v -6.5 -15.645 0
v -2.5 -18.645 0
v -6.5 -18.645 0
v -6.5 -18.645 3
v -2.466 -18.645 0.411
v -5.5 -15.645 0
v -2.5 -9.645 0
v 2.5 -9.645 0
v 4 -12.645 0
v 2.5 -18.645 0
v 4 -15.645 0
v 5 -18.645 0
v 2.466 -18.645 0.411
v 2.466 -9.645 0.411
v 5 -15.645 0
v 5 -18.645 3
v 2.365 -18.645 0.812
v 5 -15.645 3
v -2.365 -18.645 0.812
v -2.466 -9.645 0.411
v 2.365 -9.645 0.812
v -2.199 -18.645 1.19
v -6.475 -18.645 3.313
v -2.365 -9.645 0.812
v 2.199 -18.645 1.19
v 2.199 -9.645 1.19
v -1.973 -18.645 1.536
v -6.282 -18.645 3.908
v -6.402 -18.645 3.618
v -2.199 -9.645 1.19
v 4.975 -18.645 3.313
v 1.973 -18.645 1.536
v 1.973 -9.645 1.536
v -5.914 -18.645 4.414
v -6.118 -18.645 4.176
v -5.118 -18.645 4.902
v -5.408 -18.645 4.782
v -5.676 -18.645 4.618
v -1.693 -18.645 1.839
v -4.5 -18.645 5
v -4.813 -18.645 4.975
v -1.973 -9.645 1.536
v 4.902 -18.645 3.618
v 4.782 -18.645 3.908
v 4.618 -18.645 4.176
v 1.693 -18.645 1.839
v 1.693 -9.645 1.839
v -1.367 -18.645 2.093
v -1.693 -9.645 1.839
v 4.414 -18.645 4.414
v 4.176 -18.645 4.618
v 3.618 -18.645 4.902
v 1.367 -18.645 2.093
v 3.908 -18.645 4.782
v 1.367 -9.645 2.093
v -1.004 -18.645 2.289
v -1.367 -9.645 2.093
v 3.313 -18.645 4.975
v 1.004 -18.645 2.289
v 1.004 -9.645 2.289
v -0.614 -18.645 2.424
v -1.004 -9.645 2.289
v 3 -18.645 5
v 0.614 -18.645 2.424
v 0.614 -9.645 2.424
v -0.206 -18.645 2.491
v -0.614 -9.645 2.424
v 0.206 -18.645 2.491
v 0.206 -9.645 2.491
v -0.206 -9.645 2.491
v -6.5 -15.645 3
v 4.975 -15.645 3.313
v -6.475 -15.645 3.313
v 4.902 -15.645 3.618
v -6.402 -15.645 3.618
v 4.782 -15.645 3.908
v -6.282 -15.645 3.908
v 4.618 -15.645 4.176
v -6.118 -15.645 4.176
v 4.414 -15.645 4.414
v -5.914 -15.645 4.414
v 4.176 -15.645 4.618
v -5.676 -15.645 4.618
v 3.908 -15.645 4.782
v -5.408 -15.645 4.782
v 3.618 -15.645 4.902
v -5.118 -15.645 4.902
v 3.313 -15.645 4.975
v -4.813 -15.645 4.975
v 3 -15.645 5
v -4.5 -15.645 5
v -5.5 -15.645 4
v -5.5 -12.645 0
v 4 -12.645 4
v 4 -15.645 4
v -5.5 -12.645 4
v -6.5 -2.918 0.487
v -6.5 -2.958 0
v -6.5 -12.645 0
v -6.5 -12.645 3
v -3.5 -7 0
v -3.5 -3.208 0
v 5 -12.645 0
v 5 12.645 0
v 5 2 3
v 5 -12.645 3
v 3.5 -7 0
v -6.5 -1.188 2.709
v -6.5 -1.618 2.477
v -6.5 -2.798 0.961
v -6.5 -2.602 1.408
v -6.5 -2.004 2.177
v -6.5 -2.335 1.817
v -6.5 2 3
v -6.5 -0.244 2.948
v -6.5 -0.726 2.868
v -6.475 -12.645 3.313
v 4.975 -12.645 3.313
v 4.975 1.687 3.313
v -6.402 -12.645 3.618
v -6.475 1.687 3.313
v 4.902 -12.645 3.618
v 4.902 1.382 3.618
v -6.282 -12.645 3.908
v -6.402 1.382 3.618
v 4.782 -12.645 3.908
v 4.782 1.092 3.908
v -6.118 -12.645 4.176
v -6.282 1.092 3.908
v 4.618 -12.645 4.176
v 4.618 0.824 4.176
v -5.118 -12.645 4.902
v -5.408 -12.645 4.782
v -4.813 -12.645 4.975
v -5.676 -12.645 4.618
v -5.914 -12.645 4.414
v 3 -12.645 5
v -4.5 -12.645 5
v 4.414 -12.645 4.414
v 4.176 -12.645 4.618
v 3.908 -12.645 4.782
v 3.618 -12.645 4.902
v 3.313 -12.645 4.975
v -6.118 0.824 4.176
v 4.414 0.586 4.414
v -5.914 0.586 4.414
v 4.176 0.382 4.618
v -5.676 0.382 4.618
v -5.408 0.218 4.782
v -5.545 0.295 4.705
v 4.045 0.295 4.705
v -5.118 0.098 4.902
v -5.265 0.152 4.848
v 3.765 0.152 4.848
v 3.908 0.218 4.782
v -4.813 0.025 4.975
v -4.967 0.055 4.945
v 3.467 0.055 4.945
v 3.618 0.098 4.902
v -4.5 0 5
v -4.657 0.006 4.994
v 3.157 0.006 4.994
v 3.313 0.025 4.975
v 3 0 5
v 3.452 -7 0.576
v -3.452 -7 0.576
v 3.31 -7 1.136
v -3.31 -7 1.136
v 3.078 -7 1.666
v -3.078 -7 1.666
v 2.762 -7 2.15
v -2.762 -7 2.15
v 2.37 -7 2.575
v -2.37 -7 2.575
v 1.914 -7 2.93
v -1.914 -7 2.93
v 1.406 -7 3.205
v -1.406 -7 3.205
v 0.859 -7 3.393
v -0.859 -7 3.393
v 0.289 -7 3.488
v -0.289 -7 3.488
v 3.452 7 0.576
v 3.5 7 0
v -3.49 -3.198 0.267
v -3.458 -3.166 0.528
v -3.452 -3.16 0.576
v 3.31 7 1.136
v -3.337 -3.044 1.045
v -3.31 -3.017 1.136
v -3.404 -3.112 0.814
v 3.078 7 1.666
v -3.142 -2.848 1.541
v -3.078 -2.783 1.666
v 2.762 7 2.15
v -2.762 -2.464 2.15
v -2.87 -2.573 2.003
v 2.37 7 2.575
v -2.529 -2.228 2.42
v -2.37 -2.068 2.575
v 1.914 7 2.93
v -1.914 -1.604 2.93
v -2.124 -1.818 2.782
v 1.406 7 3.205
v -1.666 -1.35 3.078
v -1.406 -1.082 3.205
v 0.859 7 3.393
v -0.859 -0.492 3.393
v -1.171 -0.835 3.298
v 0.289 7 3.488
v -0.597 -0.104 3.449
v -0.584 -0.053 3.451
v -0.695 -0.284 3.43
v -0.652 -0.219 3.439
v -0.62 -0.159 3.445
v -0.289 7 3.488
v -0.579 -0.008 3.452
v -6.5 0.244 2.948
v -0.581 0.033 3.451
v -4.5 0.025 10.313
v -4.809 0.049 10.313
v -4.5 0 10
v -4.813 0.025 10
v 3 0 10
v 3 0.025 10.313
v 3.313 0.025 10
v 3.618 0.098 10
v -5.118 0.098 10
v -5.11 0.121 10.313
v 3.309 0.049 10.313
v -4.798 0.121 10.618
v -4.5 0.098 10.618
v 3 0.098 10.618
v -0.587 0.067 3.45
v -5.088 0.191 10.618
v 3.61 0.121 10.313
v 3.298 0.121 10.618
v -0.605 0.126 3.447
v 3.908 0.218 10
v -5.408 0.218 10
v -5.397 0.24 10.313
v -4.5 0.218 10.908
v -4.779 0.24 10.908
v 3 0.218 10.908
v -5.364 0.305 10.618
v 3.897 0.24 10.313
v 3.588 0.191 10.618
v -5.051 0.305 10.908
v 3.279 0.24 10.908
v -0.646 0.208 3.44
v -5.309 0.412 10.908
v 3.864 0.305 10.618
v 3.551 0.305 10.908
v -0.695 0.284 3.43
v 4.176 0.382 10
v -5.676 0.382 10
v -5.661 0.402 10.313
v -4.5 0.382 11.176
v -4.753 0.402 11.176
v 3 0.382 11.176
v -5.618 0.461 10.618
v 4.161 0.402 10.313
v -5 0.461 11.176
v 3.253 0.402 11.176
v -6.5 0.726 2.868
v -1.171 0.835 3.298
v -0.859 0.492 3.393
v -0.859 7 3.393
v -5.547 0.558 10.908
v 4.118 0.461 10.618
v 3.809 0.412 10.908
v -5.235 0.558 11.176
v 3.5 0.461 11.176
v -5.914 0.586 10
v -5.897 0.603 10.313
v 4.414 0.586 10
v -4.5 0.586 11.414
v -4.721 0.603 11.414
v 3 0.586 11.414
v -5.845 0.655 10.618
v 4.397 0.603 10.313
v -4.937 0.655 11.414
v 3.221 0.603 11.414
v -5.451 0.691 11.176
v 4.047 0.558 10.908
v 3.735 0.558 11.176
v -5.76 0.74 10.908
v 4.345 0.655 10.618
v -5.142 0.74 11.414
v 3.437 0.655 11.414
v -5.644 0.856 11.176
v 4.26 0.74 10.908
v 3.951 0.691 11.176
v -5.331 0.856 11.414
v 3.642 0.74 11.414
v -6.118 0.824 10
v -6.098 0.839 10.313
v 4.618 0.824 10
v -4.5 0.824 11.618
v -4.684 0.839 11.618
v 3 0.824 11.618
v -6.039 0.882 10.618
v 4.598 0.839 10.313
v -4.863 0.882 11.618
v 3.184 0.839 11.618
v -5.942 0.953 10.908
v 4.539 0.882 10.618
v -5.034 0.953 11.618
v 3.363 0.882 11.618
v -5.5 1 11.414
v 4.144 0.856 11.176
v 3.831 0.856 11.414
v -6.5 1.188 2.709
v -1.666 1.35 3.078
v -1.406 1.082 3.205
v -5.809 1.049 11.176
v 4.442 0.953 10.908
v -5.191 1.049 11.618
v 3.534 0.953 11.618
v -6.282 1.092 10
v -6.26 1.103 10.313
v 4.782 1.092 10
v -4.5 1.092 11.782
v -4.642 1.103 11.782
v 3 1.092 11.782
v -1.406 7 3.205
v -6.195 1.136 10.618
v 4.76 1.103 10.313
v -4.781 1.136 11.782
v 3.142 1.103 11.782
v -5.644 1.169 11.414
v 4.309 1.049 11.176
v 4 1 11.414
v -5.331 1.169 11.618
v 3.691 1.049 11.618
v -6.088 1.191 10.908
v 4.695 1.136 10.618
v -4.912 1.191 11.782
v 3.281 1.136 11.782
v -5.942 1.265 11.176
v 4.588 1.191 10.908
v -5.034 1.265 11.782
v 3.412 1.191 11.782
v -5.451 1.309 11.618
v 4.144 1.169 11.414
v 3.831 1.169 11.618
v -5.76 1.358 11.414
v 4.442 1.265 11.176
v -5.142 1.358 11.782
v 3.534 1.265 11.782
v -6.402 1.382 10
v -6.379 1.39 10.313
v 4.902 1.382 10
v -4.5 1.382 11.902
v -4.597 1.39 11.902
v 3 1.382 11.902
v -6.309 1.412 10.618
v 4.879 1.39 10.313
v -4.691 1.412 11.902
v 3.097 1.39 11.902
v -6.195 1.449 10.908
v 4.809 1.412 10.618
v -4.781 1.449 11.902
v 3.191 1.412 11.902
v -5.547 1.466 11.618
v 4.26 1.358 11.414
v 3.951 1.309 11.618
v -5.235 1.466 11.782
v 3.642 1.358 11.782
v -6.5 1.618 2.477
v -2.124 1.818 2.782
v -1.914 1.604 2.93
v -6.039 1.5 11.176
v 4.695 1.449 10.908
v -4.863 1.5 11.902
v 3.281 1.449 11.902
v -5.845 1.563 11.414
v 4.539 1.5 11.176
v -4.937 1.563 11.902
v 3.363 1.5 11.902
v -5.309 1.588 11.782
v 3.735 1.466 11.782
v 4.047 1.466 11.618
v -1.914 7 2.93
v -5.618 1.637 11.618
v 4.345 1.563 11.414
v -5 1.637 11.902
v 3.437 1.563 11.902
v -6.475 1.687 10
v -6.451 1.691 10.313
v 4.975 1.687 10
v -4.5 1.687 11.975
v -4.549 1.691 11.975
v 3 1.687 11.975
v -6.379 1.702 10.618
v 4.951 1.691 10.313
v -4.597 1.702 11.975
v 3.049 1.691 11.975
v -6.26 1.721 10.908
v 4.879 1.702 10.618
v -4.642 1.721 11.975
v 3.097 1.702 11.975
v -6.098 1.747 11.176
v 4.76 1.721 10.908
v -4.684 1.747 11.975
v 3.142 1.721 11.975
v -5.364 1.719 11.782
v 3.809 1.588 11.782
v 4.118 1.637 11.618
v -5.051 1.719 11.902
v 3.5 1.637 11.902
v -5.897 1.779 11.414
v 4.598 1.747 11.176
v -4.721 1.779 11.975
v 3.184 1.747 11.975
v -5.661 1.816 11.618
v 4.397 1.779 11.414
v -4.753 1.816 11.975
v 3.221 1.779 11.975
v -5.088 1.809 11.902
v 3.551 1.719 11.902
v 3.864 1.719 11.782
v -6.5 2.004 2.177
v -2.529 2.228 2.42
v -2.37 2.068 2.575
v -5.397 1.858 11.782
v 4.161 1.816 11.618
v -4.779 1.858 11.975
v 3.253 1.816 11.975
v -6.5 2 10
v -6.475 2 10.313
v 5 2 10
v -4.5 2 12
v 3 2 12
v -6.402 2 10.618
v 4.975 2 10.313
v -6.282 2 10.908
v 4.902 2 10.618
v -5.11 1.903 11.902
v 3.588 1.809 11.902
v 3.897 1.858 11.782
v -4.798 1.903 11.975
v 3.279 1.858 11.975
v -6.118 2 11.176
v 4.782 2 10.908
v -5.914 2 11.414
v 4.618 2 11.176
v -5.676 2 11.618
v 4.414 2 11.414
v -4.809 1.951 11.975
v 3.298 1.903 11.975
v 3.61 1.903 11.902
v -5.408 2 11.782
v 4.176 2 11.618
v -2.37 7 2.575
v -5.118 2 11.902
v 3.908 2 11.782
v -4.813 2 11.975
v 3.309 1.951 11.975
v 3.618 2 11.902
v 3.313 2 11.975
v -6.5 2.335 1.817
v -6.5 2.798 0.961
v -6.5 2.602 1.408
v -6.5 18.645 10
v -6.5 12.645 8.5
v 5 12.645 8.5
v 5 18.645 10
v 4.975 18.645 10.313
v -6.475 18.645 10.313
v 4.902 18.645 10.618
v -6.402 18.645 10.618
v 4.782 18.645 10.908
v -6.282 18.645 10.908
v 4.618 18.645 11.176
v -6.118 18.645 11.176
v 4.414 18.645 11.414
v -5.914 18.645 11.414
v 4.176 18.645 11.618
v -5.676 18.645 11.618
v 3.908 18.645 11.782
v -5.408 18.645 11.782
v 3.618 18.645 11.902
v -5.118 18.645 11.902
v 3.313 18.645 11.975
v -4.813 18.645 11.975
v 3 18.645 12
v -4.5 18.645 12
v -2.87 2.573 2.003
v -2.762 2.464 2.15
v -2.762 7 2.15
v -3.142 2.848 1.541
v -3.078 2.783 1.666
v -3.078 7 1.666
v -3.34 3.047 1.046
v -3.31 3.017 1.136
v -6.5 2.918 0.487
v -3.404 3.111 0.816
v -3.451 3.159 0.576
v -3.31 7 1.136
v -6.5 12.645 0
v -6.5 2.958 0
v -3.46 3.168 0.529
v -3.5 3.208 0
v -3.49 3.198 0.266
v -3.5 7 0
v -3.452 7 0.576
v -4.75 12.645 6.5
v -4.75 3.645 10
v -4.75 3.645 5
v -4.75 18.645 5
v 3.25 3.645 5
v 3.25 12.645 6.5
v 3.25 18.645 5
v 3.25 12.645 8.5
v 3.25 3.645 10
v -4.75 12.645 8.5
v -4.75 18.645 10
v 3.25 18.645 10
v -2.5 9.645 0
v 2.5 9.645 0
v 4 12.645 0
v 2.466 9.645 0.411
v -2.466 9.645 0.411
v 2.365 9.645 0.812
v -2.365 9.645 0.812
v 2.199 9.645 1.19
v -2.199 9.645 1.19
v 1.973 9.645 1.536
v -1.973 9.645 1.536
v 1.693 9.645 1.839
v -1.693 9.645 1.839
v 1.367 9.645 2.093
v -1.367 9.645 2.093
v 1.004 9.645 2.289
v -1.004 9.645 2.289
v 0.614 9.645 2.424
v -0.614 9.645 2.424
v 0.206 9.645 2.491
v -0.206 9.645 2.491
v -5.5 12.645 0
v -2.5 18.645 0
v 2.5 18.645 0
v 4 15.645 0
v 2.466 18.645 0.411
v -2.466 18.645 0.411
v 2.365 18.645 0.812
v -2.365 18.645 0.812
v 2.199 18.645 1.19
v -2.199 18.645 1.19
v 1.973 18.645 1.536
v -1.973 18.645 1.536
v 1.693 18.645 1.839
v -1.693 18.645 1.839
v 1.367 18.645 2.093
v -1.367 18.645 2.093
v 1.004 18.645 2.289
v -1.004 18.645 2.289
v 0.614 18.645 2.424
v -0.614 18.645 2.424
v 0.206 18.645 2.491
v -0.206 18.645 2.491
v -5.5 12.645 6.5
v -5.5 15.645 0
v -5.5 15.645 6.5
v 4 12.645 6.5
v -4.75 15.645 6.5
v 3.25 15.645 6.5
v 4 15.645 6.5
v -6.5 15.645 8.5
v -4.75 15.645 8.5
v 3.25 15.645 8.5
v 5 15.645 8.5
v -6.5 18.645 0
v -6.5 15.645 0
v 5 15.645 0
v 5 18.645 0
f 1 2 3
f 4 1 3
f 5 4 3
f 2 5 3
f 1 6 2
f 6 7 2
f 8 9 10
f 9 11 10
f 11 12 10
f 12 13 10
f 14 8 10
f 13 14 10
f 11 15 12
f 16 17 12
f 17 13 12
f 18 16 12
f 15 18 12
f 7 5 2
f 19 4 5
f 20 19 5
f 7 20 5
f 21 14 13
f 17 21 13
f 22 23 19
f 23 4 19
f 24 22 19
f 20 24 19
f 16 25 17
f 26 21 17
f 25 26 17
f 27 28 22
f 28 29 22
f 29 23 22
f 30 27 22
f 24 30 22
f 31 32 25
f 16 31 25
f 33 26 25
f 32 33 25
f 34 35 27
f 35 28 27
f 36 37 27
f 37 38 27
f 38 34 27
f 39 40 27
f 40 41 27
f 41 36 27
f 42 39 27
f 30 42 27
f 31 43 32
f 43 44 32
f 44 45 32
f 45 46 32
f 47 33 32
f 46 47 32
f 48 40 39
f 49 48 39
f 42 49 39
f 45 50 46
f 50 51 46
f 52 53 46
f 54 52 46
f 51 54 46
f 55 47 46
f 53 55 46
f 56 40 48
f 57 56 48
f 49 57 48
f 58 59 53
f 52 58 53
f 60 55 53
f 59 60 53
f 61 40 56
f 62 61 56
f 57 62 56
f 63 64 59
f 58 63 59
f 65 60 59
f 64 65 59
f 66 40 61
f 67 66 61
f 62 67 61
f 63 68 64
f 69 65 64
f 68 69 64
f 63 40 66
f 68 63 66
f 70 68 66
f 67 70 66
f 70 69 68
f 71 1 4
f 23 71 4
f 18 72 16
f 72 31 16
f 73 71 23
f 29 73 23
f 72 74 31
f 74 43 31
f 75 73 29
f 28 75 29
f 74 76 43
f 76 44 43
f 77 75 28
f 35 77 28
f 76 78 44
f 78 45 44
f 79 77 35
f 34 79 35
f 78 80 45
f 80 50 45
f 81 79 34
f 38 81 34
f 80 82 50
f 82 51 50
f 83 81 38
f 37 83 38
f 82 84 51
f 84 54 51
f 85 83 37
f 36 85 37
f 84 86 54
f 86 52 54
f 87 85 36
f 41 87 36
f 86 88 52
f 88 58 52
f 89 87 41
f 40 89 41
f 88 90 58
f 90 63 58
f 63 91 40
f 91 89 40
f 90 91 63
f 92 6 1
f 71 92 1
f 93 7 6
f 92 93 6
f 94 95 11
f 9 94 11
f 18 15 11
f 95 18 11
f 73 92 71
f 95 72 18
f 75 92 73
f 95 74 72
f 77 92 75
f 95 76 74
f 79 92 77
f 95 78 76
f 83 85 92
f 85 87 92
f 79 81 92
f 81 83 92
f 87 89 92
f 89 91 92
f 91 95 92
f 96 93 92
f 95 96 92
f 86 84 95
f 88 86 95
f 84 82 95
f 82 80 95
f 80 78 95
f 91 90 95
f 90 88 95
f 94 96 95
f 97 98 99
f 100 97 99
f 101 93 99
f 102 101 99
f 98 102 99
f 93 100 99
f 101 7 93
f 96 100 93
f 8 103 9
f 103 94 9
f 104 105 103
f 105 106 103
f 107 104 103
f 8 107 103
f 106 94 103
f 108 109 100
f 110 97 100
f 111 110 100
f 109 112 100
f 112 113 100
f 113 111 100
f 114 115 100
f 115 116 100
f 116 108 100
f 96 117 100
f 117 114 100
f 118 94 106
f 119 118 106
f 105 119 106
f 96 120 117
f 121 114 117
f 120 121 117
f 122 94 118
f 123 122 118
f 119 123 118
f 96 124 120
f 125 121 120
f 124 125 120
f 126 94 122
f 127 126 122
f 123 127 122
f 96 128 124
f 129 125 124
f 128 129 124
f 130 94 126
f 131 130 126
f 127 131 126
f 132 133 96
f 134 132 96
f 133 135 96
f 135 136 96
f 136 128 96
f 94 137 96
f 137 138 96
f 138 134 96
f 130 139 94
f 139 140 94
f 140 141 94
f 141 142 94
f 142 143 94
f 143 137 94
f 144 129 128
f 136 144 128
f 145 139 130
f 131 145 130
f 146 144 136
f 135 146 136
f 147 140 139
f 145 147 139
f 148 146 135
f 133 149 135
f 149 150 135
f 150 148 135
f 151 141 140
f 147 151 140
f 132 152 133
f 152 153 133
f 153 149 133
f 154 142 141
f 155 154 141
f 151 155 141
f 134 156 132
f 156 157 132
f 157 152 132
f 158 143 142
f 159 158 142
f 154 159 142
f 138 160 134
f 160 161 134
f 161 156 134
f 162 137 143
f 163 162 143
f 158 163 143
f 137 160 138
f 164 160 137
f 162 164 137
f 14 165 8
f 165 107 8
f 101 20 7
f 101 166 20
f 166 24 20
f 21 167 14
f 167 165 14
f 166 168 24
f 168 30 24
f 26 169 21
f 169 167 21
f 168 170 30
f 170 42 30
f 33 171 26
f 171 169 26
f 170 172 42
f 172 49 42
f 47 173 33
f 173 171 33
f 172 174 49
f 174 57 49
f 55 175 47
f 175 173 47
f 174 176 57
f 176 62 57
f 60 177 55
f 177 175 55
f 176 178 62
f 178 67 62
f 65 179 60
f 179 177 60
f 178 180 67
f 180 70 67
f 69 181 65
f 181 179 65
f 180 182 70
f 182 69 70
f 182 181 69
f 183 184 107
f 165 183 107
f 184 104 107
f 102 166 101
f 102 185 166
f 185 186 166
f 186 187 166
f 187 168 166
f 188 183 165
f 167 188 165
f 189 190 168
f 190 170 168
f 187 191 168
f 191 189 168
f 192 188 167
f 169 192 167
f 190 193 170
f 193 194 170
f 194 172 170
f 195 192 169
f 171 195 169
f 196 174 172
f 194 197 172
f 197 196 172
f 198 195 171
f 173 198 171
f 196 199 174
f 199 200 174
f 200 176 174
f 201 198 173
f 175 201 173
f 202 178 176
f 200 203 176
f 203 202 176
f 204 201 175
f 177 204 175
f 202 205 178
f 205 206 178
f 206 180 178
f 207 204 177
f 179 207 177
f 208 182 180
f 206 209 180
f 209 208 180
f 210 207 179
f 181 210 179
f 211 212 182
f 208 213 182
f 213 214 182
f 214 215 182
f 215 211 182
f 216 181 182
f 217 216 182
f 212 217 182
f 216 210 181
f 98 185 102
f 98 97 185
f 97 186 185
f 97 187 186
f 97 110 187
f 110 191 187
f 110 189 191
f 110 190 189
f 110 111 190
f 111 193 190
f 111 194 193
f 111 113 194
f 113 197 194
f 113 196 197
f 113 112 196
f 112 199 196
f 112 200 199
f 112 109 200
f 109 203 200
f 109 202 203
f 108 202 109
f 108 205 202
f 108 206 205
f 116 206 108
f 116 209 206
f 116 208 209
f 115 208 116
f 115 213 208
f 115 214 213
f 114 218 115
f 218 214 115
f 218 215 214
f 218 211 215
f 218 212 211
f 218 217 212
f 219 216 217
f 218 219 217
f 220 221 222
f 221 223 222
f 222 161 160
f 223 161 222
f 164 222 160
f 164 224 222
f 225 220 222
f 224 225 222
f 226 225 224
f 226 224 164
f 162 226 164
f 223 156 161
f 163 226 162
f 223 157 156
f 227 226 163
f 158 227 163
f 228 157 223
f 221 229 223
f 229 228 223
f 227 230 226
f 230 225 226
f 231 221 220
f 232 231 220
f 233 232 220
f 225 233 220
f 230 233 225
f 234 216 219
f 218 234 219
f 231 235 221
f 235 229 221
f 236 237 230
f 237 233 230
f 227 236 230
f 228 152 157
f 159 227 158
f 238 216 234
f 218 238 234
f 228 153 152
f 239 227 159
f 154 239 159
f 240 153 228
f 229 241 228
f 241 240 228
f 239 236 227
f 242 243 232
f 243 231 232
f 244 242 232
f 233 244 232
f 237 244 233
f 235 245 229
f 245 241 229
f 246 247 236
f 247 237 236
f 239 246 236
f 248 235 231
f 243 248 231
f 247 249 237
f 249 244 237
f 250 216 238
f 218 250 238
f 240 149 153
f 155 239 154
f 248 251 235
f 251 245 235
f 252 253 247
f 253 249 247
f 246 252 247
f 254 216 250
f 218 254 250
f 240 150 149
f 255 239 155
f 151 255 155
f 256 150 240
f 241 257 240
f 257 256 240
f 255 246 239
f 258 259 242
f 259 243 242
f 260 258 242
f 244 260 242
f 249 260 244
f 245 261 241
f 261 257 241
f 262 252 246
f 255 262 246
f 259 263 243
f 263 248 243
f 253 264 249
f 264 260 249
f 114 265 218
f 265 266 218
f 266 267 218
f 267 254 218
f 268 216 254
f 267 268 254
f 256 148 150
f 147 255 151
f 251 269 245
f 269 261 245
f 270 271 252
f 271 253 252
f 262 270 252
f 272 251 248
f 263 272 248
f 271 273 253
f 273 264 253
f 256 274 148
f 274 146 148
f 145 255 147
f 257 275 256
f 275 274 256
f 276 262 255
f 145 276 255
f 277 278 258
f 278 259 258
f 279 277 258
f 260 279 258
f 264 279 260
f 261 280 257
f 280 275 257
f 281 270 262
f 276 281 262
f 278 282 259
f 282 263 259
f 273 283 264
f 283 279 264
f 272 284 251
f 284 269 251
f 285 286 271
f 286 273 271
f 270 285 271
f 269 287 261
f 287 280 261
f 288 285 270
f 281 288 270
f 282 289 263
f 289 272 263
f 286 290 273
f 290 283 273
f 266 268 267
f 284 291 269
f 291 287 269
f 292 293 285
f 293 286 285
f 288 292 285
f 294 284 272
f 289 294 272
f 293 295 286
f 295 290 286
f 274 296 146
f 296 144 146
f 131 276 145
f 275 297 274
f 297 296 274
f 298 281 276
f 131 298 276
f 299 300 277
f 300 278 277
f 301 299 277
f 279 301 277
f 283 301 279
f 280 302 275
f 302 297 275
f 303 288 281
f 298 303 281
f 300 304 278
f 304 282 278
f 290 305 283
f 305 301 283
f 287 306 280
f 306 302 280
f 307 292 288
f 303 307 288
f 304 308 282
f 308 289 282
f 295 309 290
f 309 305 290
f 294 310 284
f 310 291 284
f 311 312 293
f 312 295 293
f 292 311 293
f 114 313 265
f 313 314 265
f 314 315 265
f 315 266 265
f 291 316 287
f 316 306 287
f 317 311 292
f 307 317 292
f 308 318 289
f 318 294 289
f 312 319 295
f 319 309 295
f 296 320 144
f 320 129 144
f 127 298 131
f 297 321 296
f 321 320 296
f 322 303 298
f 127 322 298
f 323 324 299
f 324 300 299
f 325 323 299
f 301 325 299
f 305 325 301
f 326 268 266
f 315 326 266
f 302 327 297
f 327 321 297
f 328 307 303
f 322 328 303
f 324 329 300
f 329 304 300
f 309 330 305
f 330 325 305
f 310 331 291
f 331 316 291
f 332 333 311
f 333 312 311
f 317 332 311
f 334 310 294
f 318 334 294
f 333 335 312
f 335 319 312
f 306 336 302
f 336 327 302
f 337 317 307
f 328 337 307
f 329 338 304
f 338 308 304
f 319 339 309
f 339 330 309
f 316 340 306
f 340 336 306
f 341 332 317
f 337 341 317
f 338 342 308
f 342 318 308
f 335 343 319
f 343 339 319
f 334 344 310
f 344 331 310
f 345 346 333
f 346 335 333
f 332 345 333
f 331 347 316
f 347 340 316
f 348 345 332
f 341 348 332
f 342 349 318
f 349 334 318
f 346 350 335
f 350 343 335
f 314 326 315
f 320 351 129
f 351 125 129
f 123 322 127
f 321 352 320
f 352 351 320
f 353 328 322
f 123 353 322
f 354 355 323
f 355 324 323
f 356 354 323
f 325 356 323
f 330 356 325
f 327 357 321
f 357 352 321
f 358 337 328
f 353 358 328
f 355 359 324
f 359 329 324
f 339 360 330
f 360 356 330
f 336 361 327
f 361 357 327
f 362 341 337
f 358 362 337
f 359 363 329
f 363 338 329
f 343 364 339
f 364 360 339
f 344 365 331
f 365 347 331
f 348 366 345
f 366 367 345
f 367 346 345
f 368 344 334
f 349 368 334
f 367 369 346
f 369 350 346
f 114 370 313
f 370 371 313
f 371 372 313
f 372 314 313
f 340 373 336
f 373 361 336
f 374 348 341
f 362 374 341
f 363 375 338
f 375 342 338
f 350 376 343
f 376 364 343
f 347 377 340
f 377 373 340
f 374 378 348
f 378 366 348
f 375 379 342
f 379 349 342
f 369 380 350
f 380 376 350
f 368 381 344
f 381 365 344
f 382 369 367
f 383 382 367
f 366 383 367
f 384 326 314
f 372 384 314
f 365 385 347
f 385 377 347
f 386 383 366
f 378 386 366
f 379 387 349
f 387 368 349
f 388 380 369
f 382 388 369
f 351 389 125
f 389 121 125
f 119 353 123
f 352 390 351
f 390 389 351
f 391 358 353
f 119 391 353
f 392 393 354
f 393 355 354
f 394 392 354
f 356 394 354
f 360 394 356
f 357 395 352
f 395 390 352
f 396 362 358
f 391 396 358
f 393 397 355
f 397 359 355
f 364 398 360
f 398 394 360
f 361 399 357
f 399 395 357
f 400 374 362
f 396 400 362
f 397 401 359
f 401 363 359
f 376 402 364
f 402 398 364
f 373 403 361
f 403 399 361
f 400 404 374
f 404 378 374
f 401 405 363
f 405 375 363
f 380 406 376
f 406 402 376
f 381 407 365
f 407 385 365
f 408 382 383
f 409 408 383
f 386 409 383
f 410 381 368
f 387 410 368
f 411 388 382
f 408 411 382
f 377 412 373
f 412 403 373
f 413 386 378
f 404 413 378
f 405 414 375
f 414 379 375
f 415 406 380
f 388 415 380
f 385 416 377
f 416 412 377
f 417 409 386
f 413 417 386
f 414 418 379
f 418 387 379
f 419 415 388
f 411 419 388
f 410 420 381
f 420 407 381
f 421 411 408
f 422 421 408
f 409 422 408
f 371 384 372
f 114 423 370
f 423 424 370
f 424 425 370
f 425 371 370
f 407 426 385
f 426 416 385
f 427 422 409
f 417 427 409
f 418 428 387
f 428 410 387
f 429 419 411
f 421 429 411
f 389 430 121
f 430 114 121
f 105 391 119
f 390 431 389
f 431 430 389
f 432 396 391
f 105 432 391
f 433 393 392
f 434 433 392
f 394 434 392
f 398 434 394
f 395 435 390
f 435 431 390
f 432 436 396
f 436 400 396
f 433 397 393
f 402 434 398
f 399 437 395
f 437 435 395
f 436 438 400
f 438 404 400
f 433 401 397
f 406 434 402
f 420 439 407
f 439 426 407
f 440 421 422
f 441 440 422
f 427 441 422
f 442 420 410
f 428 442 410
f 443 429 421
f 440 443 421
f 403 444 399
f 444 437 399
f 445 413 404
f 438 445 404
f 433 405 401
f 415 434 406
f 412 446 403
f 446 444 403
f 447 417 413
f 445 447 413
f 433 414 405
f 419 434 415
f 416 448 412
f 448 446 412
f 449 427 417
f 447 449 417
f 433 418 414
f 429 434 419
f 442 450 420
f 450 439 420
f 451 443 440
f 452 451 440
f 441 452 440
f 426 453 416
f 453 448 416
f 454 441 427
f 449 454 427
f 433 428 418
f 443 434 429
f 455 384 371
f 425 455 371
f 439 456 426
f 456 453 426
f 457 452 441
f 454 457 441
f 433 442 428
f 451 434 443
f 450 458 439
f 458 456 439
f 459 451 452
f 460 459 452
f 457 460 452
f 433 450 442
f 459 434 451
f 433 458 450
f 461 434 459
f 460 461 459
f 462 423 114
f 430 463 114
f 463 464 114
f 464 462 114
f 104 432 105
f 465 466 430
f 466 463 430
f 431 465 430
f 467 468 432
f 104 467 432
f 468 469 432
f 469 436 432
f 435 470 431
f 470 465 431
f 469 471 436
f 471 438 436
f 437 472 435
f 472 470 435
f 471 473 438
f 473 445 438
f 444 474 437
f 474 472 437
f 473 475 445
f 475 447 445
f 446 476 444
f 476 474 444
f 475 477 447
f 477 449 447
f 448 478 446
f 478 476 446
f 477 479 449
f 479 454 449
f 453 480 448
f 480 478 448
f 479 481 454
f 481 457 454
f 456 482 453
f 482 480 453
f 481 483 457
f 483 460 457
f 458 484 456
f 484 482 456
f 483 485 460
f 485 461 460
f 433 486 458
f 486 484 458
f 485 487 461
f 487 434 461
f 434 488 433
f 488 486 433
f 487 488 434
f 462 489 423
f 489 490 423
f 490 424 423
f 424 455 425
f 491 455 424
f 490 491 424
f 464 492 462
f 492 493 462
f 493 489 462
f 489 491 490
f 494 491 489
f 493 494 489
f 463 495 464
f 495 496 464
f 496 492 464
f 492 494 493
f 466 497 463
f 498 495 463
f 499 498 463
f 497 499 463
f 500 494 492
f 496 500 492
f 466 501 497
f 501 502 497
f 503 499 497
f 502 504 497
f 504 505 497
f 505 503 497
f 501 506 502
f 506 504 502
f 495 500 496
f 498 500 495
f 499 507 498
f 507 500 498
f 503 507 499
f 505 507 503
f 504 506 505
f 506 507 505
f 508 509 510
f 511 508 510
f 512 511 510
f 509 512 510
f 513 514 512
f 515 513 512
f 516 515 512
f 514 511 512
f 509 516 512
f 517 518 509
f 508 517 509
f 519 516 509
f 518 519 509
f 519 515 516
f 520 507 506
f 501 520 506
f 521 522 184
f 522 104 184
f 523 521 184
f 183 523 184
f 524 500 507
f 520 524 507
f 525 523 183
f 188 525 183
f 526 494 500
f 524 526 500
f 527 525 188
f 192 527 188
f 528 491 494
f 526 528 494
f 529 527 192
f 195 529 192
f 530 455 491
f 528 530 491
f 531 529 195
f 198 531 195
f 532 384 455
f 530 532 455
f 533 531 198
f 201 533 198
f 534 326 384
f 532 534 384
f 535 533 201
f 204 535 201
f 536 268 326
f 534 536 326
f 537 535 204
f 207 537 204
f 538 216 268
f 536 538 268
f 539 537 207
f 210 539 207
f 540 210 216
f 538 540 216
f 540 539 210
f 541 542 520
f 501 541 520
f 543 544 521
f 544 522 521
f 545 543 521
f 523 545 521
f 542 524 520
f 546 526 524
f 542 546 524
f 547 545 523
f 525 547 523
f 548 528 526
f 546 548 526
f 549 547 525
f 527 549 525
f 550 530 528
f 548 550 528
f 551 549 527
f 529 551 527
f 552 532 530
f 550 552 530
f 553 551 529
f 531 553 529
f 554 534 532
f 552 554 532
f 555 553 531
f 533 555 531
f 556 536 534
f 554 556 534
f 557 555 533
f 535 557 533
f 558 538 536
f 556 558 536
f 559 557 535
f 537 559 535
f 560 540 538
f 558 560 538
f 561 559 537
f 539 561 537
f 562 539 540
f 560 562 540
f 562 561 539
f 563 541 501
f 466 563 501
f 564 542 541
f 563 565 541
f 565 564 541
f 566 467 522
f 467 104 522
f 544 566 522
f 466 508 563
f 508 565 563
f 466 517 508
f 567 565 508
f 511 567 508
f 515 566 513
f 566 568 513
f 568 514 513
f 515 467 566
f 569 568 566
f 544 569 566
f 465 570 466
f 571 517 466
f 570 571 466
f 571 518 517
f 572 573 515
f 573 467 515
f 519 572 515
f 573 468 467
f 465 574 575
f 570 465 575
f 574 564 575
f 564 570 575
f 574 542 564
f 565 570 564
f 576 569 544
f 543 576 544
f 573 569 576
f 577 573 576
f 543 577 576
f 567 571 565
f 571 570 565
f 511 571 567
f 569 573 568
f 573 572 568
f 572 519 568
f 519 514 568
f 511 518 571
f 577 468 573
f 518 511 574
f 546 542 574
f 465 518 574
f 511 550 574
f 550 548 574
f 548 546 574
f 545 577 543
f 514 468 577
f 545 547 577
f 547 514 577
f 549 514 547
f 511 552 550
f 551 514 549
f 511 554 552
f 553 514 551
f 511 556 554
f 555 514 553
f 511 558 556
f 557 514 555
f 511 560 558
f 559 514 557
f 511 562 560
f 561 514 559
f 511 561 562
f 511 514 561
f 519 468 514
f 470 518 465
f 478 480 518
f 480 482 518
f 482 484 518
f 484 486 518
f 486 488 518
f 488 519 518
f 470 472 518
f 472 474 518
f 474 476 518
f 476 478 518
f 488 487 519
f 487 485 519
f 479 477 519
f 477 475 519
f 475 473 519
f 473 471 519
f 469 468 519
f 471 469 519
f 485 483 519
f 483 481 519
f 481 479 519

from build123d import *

# Parameters (mm, degrees)
CROQUIS2_W              = 11.5
CROQUIS2_H              = 37.290106074
SALIENTE_EXTRUIR1_DEPTH = 5
CROQUIS6_W              = 11.5
CROQUIS6_H              = 18.645053037
SALIENTE_EXTRUIR2_DEPTH = 7
CROQUIS4_W              = 1
CROQUIS4_H              = 3
CORTAR_EXTRUIR2_DEPTH   = 6.5
CORTAR_EXTRUIR3_START   = -10.5
CROQUIS5_W              = 2
CROQUIS5_H              = 3
CROQUIS5_W_2            = 3.958309594
CORTAR_EXTRUIR3_DEPTH   = 11.5
CROQUIS7_W              = 8
CROQUIS7_H              = 5
CORTAR_EXTRUIR4_DEPTH   = 15
REDONDEO1_R             = 2


with BuildPart() as part:
    # Croquis2 → Saliente-Extruir1 (new body)
    with BuildSketch(Plane.XY):
        with Locations((-0.75, 0)):
            Rectangle(CROQUIS2_W, CROQUIS2_H)
    extrude(amount=SALIENTE_EXTRUIR1_DEPTH)

    # Croquis2<4> → Cortar-Revolución1 (revolve, cut)
    with BuildSketch(Plane.XY):
        Polygon((-2.5, -18.645053037), (0, -18.645053037), (0, 18.645053037), (-2.5, 18.645053037), (-2.5, 9.645053037), (-3.5, 7), (-3.5, -7), (-2.5, -9.645053037), align=None)
    revolve(axis=Axis((0, 7, 0), (0, 1, 0)), mode=Mode.SUBTRACT)

    # Croquis3 → Cortar-Revolución2 (revolve, cut)
    with BuildSketch(Plane(origin=(0, 0, 0), x_dir=(-1, 0, 0), z_dir=(0, 0, -1))):
        Polygon((0, 0), (0, 3.5), (12, 2.5), (12, 0), align=None)
    revolve(axis=Axis((0, 0, 0), (-1, 0, 0)), mode=Mode.SUBTRACT)

    # Croquis6 → Saliente-Extruir2 (add)
    with BuildSketch(Plane.XY.offset(5)):
        with Locations((-0.75, 9.322526519)):
            Rectangle(CROQUIS6_W, CROQUIS6_H)
    extrude(amount=SALIENTE_EXTRUIR2_DEPTH)

    # Croquis4 → Cortar-Extruir2 (cut)
    with BuildSketch(Plane(origin=(0, 0, 0), x_dir=(-1, 0, 0), z_dir=(0, 0, -1))):
        with Locations((-4.5, 14.145053037)):
            Rectangle(CROQUIS4_W, CROQUIS4_H)
        with Locations((6, 14.145053037)):
            Rectangle(CROQUIS4_W, CROQUIS4_H)
        with Locations((6, -14.145053037)):
            Rectangle(CROQUIS4_W, CROQUIS4_H)
        with Locations((-4.5, -14.145053037)):
            Rectangle(CROQUIS4_W, CROQUIS4_H)
    extrude(amount=-CORTAR_EXTRUIR2_DEPTH, mode=Mode.SUBTRACT)

    # Croquis5 → Cortar-Extruir3 (cut)
    with BuildSketch(Plane(origin=(4, 0, 0), x_dir=(0, 0, -1), z_dir=(1, 0, 0)).offset(CORTAR_EXTRUIR3_START)):
        with Locations((-7.5, 14.145053037)):
            Rectangle(CROQUIS5_W, CROQUIS5_H)
        with Locations((-5.979154797, -14.145053037)):
            Rectangle(CROQUIS5_W_2, CROQUIS5_H)
    extrude(amount=CORTAR_EXTRUIR3_DEPTH, mode=Mode.SUBTRACT)

    # Croquis7 → Cortar-Extruir4 (cut)
    with BuildSketch(Plane(origin=(0, 18.645053037, 0), x_dir=(1, 0, 0), z_dir=(0, 1, 0))):
        with Locations((-0.75, -7.5)):
            Rectangle(CROQUIS7_W, CROQUIS7_H)
    extrude(amount=-CORTAR_EXTRUIR4_DEPTH, mode=Mode.SUBTRACT)

    # Redondeo1
    redondeo1_edges = [part.edges().sort_by_distance(p)[0] for p in [
        (-6.5, -6.322526519, 5),
        (5, -6.322526519, 5),
        (5, 0, 8.5),
        (-6.5, 0, 8.5),
        (5, 9.322526519, 12),
        (-6.5, 9.322526519, 12),
        (-0.75, 0, 12),
        (5, -17.145053037, 5),
        (-6.5, -17.145053037, 5),
    ]]
    fillet(redondeo1_edges, radius=REDONDEO1_R)


solid = part.part
